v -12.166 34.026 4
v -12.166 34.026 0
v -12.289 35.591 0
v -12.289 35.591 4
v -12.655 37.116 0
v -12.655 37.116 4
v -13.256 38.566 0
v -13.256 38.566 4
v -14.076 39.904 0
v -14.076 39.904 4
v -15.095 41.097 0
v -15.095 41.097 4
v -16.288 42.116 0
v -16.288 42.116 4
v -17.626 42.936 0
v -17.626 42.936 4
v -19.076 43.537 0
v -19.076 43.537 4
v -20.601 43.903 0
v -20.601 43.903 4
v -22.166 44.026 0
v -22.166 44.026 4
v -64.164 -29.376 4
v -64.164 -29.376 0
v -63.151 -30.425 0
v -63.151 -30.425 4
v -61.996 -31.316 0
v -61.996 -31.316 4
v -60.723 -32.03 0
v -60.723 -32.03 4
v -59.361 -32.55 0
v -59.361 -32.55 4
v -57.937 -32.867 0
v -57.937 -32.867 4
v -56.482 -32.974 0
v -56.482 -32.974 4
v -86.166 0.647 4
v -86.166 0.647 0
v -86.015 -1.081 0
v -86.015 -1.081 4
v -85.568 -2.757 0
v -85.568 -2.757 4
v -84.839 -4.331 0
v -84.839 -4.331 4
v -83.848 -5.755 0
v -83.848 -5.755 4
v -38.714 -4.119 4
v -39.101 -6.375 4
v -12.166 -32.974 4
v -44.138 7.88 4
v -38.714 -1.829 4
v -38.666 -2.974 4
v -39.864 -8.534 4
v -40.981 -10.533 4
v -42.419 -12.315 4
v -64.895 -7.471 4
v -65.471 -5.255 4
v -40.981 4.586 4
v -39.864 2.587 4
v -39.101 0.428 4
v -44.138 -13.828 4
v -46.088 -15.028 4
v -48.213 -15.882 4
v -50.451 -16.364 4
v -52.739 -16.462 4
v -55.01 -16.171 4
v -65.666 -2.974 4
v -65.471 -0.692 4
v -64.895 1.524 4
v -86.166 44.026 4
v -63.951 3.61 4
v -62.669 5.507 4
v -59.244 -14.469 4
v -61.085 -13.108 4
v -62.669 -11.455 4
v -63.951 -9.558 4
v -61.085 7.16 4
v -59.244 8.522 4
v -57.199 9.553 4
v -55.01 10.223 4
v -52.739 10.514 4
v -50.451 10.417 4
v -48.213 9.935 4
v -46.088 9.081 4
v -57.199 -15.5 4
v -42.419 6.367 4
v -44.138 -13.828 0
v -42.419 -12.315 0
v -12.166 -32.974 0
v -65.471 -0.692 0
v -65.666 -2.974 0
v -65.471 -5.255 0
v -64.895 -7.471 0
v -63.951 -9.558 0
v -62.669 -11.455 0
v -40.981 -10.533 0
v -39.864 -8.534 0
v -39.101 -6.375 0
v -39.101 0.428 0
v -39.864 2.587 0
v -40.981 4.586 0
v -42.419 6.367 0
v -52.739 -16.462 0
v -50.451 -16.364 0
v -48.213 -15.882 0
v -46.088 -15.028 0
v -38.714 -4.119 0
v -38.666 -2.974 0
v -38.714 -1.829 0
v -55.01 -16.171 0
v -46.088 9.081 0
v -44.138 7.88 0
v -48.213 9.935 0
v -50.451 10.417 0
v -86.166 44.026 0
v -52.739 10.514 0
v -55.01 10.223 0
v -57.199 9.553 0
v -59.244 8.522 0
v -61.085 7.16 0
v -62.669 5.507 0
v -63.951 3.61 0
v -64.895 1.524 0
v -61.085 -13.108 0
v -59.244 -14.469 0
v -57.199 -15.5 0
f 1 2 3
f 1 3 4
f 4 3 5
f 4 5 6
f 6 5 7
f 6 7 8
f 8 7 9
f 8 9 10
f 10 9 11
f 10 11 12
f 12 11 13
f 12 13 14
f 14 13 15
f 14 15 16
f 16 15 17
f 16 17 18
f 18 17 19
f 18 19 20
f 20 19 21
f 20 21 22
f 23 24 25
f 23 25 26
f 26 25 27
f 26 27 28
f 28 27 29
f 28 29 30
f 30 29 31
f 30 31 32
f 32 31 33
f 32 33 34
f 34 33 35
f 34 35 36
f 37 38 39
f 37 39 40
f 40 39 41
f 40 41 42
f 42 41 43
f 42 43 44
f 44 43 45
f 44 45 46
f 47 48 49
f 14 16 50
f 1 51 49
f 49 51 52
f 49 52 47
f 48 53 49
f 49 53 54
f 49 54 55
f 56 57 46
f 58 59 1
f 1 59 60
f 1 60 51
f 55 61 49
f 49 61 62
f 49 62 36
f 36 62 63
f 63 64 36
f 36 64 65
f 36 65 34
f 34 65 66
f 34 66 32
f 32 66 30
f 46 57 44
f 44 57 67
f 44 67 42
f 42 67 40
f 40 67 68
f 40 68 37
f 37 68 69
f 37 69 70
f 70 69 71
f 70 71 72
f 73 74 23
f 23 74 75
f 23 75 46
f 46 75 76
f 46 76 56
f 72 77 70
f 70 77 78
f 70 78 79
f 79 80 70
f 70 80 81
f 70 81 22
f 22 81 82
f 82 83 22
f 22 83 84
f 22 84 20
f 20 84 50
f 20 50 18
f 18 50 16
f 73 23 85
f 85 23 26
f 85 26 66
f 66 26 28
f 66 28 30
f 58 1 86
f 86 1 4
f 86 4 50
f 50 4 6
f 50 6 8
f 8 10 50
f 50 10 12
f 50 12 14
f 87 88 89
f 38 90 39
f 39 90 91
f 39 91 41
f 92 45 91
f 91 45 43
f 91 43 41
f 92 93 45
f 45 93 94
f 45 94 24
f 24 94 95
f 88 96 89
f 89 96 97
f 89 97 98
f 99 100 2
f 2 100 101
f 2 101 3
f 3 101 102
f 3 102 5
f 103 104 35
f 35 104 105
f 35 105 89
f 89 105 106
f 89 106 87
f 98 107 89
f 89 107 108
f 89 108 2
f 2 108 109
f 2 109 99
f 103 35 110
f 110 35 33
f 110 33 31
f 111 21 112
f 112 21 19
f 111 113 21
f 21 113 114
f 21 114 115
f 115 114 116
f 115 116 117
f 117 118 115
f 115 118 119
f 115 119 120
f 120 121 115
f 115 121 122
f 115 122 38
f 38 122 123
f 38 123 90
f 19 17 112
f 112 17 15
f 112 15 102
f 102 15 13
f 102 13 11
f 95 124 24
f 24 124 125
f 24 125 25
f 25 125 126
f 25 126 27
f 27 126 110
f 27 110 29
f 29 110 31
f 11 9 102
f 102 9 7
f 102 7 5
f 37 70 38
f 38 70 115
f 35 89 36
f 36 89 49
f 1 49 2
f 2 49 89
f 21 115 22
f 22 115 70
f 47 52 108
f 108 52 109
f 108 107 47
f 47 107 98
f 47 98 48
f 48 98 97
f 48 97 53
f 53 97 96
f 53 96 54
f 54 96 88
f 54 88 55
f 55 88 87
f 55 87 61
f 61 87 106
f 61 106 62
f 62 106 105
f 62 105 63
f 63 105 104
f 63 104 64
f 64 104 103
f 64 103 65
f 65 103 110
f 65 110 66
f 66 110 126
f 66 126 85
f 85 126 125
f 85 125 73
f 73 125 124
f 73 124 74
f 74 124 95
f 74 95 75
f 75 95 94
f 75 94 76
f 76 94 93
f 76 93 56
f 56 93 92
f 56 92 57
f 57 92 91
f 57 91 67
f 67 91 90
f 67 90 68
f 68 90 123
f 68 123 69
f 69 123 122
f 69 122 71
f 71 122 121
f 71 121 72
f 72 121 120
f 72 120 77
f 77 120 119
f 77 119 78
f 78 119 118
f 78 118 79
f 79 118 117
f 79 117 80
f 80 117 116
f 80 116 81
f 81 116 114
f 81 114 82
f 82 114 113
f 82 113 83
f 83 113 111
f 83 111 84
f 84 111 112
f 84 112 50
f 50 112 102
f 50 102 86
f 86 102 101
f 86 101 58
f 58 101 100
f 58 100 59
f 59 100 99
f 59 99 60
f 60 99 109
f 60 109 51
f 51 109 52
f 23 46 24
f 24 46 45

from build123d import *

# Parameters (mm, degrees)
ESBO_O1_W                  = 74
ESBO_O1_H                  = 77
RESSALTO_EXTRUS_O1_DEPTH   = 4
ESBO_O2_R                  = 13.5
CORTE_EXTRUS_O1_DEPTH      = 4
CORTE_EXTRUS_O1_DEPTH_BACK = 4
CORTE_EXTRUS_O2_DEPTH      = 1
CORTE_EXTRUS_O2_DEPTH_BACK = 5
FILETE2_R                  = 10
FILETE3_R                  = 10
FILETE4_R                  = 10


with BuildPart() as part:
    # Esboço1 → Ressalto-extrusão1 (new body)
    with BuildSketch(Plane.XY):
        with Locations((-49.165685596, 5.526315789)):
            Rectangle(ESBO_O1_W, ESBO_O1_H)
    extrude(amount=RESSALTO_EXTRUS_O1_DEPTH)

    # Esboço2 → Corte-extrusão1 (cut, two sides)
    with BuildSketch(Plane.XY.offset(4)) as corte_extrus_o1_sk:
        with Locations((-52.165685596, -2.973684211)):
            Circle(ESBO_O2_R)
    extrude(amount=CORTE_EXTRUS_O1_DEPTH, mode=Mode.SUBTRACT)
    extrude(corte_extrus_o1_sk.sketch, amount=-CORTE_EXTRUS_O1_DEPTH_BACK, mode=Mode.SUBTRACT)

    # Esboço4 → Corte-extrusão2 (cut, two sides)
    with BuildSketch(Plane.XY.offset(4)) as corte_extrus_o2_sk:
        Polygon((62.093925387, -180.88521739), (-61.165685596, -32.973684211), (-86.165685596, -2.973684211), (-209.425296578, 144.937848968), (-505.248362936, -101.581372997), (-233.729140971, -427.404439354), align=None)
    extrude(amount=CORTE_EXTRUS_O2_DEPTH, mode=Mode.SUBTRACT)
    extrude(corte_extrus_o2_sk.sketch, amount=-CORTE_EXTRUS_O2_DEPTH_BACK, mode=Mode.SUBTRACT)

    # Filete2
    filete2_edges = [part.edges().sort_by_distance(p)[0] for p in [
        (-86.165685596, -2.973684211, 2),
    ]]
    fillet(filete2_edges, radius=FILETE2_R)

    # Filete3
    filete3_edges = [part.edges().sort_by_distance(p)[0] for p in [
        (-61.165685596, -32.973684211, 2),
    ]]
    fillet(filete3_edges, radius=FILETE3_R)

    # Filete4
    filete4_edges = [part.edges().sort_by_distance(p)[0] for p in [
        (-12.165685596, 44.026315789, 2),
    ]]
    fillet(filete4_edges, radius=FILETE4_R)


solid = part.part
